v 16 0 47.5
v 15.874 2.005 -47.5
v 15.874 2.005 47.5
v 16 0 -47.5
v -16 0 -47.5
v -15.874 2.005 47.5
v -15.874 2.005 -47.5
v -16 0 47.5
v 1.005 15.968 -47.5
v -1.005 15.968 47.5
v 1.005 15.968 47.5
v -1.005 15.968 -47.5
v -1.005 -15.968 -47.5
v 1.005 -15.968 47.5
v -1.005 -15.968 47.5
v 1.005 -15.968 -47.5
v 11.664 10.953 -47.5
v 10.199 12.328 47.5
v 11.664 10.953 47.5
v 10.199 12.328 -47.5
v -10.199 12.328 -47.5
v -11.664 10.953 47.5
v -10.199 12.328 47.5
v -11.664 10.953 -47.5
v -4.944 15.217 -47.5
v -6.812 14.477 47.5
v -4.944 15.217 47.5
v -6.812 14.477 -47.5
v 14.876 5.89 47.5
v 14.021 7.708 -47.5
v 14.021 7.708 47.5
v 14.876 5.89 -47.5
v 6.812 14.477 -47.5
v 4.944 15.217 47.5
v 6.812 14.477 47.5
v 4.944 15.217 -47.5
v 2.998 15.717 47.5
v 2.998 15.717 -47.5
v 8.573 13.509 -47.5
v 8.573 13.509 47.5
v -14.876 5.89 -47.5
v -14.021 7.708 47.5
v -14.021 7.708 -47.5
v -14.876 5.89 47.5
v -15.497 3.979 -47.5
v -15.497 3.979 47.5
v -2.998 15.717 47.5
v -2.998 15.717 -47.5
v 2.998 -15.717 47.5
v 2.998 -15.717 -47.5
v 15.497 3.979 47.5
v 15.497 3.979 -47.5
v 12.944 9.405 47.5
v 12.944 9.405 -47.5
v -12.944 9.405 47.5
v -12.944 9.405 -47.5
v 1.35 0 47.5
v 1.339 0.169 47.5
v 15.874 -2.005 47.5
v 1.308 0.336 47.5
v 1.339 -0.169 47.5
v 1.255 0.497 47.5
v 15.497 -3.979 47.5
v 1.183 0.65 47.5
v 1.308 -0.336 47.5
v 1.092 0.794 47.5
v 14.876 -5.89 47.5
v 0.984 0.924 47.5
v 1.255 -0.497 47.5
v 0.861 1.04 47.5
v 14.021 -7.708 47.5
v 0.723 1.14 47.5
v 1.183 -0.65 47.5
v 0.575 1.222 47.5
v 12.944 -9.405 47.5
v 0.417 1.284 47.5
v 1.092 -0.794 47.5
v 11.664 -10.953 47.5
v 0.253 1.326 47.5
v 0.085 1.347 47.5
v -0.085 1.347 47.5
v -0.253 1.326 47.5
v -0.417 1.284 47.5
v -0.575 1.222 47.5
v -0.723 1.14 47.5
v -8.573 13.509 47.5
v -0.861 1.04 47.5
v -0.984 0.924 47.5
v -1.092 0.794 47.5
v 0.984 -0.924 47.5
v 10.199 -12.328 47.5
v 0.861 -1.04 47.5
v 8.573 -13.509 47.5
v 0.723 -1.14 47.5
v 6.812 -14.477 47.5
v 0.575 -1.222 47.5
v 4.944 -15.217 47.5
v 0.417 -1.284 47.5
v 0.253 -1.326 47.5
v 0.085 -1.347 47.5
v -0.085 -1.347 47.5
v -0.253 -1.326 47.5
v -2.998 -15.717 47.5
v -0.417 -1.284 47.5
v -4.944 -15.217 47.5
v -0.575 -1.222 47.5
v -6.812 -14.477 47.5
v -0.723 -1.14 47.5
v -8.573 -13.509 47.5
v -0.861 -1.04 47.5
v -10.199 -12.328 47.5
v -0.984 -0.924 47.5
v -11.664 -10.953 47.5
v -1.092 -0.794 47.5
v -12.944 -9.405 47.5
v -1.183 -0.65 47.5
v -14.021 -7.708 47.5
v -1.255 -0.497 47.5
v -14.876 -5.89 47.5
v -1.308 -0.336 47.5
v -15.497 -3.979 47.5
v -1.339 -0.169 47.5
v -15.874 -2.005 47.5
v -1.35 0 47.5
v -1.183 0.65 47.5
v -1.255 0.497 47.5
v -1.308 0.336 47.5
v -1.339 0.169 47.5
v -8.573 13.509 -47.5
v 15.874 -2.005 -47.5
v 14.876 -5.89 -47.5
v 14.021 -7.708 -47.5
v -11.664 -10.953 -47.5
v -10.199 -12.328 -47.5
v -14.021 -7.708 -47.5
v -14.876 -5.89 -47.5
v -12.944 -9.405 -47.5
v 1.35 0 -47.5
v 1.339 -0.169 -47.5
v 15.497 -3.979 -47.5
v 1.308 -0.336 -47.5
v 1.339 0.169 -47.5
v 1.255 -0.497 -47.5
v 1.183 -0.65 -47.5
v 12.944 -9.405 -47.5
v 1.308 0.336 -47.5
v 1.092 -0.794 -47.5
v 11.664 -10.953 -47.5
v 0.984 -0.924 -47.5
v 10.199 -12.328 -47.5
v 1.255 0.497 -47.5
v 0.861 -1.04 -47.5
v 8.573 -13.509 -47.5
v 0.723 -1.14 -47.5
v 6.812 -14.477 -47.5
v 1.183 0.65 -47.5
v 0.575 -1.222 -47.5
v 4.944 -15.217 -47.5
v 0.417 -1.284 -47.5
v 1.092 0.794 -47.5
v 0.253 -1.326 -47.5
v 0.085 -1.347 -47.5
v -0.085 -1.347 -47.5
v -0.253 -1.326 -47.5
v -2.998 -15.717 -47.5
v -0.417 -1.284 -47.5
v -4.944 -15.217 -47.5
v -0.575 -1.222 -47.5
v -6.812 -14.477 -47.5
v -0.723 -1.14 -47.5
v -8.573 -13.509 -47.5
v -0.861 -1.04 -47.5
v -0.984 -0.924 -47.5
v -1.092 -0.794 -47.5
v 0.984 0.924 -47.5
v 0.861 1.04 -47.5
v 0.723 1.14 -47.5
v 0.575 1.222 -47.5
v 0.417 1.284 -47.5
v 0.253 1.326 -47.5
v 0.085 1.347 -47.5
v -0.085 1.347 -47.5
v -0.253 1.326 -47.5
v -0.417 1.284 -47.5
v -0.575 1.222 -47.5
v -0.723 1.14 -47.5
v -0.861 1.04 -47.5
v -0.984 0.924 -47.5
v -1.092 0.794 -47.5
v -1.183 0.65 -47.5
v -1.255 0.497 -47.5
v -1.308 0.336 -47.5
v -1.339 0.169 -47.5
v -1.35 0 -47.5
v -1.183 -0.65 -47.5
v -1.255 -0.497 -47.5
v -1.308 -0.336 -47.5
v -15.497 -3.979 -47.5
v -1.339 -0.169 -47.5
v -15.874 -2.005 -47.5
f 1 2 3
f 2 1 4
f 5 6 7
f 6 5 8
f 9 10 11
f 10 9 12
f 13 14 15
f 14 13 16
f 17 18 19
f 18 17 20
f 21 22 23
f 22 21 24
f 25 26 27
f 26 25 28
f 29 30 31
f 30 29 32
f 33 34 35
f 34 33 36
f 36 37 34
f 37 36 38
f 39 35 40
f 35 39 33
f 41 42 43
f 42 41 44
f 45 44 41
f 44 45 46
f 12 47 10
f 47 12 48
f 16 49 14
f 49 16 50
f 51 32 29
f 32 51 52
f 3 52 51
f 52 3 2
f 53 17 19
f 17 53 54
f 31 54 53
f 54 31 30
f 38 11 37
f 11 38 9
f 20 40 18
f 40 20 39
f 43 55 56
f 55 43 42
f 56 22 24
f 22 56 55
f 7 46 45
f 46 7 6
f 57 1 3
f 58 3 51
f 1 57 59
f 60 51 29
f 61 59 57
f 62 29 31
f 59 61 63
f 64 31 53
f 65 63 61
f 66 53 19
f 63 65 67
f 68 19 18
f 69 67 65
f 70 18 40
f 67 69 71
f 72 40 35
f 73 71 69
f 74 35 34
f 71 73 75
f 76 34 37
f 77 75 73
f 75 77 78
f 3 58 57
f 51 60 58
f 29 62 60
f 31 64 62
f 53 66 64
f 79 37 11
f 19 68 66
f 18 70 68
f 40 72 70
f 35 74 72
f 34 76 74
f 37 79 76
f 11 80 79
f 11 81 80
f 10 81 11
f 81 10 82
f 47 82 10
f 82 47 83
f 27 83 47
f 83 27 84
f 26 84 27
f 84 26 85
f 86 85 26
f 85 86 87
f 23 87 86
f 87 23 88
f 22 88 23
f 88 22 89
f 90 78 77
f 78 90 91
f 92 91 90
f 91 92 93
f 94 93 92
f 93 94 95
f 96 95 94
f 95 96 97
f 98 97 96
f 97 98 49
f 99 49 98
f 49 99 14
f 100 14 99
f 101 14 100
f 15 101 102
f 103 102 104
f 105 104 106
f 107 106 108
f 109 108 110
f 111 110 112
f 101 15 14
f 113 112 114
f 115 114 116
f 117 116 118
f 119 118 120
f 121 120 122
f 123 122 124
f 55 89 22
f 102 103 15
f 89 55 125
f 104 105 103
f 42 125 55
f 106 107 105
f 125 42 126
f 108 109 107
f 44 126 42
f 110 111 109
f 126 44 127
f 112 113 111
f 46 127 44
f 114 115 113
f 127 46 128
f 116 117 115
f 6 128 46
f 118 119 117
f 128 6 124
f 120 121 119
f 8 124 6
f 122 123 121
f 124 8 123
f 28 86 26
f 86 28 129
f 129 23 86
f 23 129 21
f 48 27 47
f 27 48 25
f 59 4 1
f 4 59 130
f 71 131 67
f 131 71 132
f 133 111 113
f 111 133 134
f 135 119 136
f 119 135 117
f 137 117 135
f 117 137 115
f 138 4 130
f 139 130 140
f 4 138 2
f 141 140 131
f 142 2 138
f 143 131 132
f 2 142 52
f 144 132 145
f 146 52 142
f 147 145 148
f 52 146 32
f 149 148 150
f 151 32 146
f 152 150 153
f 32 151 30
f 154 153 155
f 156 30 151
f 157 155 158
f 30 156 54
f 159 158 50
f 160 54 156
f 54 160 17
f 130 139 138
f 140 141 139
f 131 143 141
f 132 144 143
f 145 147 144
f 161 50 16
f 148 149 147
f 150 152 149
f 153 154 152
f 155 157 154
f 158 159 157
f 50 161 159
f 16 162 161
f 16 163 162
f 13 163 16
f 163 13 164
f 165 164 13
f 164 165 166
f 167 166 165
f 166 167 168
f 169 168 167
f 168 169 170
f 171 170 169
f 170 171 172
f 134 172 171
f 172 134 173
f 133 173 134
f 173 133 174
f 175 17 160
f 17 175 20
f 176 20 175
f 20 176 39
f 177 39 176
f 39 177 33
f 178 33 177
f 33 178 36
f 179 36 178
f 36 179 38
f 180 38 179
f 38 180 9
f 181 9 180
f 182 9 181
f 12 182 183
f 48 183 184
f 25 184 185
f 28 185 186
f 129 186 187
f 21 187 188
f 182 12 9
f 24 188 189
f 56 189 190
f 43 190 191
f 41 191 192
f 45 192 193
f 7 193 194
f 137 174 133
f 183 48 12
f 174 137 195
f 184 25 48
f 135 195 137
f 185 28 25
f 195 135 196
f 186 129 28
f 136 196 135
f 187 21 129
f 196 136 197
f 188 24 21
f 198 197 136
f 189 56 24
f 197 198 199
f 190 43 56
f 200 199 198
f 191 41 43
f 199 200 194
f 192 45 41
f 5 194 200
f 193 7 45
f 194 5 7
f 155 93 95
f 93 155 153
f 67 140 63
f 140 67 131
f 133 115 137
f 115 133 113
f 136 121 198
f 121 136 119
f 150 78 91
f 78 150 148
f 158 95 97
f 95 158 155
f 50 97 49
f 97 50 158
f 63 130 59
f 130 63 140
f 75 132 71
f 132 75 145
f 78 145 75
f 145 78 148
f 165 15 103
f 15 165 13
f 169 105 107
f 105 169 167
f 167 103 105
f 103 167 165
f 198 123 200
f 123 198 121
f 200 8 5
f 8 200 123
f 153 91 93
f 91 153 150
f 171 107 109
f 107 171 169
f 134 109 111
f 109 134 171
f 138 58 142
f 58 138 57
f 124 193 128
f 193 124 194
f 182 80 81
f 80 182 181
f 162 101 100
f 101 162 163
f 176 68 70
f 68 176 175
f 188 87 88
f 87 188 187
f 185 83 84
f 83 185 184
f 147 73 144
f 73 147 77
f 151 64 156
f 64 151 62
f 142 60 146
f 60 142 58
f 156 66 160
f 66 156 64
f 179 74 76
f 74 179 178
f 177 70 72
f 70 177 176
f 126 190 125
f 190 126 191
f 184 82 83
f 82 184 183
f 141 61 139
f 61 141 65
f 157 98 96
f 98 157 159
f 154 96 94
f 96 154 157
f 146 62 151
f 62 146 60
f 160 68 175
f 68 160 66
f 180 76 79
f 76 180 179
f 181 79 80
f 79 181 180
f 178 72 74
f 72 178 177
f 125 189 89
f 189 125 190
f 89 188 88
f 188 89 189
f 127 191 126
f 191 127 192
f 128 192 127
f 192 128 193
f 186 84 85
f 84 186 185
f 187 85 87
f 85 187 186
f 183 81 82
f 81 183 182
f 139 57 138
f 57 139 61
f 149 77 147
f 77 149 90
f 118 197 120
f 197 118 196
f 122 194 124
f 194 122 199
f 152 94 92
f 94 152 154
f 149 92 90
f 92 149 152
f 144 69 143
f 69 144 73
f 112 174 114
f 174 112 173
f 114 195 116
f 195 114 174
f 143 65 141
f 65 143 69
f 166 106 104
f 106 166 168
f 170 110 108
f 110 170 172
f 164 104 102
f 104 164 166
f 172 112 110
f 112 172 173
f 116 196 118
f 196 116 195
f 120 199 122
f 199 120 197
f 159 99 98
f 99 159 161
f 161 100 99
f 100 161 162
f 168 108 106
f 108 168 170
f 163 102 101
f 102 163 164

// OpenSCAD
$fn = 50;


difference() {
	union() {
		translate(v = [0, 0, -47.5000000000]) {
			cylinder(h = 95, r = 16.0000000000);
		}
	}
	union() {
		translate(v = [0, 0, -100.0000000000]) {
			cylinder(h = 200, r = 1.3500000000);
		}
	}
}
